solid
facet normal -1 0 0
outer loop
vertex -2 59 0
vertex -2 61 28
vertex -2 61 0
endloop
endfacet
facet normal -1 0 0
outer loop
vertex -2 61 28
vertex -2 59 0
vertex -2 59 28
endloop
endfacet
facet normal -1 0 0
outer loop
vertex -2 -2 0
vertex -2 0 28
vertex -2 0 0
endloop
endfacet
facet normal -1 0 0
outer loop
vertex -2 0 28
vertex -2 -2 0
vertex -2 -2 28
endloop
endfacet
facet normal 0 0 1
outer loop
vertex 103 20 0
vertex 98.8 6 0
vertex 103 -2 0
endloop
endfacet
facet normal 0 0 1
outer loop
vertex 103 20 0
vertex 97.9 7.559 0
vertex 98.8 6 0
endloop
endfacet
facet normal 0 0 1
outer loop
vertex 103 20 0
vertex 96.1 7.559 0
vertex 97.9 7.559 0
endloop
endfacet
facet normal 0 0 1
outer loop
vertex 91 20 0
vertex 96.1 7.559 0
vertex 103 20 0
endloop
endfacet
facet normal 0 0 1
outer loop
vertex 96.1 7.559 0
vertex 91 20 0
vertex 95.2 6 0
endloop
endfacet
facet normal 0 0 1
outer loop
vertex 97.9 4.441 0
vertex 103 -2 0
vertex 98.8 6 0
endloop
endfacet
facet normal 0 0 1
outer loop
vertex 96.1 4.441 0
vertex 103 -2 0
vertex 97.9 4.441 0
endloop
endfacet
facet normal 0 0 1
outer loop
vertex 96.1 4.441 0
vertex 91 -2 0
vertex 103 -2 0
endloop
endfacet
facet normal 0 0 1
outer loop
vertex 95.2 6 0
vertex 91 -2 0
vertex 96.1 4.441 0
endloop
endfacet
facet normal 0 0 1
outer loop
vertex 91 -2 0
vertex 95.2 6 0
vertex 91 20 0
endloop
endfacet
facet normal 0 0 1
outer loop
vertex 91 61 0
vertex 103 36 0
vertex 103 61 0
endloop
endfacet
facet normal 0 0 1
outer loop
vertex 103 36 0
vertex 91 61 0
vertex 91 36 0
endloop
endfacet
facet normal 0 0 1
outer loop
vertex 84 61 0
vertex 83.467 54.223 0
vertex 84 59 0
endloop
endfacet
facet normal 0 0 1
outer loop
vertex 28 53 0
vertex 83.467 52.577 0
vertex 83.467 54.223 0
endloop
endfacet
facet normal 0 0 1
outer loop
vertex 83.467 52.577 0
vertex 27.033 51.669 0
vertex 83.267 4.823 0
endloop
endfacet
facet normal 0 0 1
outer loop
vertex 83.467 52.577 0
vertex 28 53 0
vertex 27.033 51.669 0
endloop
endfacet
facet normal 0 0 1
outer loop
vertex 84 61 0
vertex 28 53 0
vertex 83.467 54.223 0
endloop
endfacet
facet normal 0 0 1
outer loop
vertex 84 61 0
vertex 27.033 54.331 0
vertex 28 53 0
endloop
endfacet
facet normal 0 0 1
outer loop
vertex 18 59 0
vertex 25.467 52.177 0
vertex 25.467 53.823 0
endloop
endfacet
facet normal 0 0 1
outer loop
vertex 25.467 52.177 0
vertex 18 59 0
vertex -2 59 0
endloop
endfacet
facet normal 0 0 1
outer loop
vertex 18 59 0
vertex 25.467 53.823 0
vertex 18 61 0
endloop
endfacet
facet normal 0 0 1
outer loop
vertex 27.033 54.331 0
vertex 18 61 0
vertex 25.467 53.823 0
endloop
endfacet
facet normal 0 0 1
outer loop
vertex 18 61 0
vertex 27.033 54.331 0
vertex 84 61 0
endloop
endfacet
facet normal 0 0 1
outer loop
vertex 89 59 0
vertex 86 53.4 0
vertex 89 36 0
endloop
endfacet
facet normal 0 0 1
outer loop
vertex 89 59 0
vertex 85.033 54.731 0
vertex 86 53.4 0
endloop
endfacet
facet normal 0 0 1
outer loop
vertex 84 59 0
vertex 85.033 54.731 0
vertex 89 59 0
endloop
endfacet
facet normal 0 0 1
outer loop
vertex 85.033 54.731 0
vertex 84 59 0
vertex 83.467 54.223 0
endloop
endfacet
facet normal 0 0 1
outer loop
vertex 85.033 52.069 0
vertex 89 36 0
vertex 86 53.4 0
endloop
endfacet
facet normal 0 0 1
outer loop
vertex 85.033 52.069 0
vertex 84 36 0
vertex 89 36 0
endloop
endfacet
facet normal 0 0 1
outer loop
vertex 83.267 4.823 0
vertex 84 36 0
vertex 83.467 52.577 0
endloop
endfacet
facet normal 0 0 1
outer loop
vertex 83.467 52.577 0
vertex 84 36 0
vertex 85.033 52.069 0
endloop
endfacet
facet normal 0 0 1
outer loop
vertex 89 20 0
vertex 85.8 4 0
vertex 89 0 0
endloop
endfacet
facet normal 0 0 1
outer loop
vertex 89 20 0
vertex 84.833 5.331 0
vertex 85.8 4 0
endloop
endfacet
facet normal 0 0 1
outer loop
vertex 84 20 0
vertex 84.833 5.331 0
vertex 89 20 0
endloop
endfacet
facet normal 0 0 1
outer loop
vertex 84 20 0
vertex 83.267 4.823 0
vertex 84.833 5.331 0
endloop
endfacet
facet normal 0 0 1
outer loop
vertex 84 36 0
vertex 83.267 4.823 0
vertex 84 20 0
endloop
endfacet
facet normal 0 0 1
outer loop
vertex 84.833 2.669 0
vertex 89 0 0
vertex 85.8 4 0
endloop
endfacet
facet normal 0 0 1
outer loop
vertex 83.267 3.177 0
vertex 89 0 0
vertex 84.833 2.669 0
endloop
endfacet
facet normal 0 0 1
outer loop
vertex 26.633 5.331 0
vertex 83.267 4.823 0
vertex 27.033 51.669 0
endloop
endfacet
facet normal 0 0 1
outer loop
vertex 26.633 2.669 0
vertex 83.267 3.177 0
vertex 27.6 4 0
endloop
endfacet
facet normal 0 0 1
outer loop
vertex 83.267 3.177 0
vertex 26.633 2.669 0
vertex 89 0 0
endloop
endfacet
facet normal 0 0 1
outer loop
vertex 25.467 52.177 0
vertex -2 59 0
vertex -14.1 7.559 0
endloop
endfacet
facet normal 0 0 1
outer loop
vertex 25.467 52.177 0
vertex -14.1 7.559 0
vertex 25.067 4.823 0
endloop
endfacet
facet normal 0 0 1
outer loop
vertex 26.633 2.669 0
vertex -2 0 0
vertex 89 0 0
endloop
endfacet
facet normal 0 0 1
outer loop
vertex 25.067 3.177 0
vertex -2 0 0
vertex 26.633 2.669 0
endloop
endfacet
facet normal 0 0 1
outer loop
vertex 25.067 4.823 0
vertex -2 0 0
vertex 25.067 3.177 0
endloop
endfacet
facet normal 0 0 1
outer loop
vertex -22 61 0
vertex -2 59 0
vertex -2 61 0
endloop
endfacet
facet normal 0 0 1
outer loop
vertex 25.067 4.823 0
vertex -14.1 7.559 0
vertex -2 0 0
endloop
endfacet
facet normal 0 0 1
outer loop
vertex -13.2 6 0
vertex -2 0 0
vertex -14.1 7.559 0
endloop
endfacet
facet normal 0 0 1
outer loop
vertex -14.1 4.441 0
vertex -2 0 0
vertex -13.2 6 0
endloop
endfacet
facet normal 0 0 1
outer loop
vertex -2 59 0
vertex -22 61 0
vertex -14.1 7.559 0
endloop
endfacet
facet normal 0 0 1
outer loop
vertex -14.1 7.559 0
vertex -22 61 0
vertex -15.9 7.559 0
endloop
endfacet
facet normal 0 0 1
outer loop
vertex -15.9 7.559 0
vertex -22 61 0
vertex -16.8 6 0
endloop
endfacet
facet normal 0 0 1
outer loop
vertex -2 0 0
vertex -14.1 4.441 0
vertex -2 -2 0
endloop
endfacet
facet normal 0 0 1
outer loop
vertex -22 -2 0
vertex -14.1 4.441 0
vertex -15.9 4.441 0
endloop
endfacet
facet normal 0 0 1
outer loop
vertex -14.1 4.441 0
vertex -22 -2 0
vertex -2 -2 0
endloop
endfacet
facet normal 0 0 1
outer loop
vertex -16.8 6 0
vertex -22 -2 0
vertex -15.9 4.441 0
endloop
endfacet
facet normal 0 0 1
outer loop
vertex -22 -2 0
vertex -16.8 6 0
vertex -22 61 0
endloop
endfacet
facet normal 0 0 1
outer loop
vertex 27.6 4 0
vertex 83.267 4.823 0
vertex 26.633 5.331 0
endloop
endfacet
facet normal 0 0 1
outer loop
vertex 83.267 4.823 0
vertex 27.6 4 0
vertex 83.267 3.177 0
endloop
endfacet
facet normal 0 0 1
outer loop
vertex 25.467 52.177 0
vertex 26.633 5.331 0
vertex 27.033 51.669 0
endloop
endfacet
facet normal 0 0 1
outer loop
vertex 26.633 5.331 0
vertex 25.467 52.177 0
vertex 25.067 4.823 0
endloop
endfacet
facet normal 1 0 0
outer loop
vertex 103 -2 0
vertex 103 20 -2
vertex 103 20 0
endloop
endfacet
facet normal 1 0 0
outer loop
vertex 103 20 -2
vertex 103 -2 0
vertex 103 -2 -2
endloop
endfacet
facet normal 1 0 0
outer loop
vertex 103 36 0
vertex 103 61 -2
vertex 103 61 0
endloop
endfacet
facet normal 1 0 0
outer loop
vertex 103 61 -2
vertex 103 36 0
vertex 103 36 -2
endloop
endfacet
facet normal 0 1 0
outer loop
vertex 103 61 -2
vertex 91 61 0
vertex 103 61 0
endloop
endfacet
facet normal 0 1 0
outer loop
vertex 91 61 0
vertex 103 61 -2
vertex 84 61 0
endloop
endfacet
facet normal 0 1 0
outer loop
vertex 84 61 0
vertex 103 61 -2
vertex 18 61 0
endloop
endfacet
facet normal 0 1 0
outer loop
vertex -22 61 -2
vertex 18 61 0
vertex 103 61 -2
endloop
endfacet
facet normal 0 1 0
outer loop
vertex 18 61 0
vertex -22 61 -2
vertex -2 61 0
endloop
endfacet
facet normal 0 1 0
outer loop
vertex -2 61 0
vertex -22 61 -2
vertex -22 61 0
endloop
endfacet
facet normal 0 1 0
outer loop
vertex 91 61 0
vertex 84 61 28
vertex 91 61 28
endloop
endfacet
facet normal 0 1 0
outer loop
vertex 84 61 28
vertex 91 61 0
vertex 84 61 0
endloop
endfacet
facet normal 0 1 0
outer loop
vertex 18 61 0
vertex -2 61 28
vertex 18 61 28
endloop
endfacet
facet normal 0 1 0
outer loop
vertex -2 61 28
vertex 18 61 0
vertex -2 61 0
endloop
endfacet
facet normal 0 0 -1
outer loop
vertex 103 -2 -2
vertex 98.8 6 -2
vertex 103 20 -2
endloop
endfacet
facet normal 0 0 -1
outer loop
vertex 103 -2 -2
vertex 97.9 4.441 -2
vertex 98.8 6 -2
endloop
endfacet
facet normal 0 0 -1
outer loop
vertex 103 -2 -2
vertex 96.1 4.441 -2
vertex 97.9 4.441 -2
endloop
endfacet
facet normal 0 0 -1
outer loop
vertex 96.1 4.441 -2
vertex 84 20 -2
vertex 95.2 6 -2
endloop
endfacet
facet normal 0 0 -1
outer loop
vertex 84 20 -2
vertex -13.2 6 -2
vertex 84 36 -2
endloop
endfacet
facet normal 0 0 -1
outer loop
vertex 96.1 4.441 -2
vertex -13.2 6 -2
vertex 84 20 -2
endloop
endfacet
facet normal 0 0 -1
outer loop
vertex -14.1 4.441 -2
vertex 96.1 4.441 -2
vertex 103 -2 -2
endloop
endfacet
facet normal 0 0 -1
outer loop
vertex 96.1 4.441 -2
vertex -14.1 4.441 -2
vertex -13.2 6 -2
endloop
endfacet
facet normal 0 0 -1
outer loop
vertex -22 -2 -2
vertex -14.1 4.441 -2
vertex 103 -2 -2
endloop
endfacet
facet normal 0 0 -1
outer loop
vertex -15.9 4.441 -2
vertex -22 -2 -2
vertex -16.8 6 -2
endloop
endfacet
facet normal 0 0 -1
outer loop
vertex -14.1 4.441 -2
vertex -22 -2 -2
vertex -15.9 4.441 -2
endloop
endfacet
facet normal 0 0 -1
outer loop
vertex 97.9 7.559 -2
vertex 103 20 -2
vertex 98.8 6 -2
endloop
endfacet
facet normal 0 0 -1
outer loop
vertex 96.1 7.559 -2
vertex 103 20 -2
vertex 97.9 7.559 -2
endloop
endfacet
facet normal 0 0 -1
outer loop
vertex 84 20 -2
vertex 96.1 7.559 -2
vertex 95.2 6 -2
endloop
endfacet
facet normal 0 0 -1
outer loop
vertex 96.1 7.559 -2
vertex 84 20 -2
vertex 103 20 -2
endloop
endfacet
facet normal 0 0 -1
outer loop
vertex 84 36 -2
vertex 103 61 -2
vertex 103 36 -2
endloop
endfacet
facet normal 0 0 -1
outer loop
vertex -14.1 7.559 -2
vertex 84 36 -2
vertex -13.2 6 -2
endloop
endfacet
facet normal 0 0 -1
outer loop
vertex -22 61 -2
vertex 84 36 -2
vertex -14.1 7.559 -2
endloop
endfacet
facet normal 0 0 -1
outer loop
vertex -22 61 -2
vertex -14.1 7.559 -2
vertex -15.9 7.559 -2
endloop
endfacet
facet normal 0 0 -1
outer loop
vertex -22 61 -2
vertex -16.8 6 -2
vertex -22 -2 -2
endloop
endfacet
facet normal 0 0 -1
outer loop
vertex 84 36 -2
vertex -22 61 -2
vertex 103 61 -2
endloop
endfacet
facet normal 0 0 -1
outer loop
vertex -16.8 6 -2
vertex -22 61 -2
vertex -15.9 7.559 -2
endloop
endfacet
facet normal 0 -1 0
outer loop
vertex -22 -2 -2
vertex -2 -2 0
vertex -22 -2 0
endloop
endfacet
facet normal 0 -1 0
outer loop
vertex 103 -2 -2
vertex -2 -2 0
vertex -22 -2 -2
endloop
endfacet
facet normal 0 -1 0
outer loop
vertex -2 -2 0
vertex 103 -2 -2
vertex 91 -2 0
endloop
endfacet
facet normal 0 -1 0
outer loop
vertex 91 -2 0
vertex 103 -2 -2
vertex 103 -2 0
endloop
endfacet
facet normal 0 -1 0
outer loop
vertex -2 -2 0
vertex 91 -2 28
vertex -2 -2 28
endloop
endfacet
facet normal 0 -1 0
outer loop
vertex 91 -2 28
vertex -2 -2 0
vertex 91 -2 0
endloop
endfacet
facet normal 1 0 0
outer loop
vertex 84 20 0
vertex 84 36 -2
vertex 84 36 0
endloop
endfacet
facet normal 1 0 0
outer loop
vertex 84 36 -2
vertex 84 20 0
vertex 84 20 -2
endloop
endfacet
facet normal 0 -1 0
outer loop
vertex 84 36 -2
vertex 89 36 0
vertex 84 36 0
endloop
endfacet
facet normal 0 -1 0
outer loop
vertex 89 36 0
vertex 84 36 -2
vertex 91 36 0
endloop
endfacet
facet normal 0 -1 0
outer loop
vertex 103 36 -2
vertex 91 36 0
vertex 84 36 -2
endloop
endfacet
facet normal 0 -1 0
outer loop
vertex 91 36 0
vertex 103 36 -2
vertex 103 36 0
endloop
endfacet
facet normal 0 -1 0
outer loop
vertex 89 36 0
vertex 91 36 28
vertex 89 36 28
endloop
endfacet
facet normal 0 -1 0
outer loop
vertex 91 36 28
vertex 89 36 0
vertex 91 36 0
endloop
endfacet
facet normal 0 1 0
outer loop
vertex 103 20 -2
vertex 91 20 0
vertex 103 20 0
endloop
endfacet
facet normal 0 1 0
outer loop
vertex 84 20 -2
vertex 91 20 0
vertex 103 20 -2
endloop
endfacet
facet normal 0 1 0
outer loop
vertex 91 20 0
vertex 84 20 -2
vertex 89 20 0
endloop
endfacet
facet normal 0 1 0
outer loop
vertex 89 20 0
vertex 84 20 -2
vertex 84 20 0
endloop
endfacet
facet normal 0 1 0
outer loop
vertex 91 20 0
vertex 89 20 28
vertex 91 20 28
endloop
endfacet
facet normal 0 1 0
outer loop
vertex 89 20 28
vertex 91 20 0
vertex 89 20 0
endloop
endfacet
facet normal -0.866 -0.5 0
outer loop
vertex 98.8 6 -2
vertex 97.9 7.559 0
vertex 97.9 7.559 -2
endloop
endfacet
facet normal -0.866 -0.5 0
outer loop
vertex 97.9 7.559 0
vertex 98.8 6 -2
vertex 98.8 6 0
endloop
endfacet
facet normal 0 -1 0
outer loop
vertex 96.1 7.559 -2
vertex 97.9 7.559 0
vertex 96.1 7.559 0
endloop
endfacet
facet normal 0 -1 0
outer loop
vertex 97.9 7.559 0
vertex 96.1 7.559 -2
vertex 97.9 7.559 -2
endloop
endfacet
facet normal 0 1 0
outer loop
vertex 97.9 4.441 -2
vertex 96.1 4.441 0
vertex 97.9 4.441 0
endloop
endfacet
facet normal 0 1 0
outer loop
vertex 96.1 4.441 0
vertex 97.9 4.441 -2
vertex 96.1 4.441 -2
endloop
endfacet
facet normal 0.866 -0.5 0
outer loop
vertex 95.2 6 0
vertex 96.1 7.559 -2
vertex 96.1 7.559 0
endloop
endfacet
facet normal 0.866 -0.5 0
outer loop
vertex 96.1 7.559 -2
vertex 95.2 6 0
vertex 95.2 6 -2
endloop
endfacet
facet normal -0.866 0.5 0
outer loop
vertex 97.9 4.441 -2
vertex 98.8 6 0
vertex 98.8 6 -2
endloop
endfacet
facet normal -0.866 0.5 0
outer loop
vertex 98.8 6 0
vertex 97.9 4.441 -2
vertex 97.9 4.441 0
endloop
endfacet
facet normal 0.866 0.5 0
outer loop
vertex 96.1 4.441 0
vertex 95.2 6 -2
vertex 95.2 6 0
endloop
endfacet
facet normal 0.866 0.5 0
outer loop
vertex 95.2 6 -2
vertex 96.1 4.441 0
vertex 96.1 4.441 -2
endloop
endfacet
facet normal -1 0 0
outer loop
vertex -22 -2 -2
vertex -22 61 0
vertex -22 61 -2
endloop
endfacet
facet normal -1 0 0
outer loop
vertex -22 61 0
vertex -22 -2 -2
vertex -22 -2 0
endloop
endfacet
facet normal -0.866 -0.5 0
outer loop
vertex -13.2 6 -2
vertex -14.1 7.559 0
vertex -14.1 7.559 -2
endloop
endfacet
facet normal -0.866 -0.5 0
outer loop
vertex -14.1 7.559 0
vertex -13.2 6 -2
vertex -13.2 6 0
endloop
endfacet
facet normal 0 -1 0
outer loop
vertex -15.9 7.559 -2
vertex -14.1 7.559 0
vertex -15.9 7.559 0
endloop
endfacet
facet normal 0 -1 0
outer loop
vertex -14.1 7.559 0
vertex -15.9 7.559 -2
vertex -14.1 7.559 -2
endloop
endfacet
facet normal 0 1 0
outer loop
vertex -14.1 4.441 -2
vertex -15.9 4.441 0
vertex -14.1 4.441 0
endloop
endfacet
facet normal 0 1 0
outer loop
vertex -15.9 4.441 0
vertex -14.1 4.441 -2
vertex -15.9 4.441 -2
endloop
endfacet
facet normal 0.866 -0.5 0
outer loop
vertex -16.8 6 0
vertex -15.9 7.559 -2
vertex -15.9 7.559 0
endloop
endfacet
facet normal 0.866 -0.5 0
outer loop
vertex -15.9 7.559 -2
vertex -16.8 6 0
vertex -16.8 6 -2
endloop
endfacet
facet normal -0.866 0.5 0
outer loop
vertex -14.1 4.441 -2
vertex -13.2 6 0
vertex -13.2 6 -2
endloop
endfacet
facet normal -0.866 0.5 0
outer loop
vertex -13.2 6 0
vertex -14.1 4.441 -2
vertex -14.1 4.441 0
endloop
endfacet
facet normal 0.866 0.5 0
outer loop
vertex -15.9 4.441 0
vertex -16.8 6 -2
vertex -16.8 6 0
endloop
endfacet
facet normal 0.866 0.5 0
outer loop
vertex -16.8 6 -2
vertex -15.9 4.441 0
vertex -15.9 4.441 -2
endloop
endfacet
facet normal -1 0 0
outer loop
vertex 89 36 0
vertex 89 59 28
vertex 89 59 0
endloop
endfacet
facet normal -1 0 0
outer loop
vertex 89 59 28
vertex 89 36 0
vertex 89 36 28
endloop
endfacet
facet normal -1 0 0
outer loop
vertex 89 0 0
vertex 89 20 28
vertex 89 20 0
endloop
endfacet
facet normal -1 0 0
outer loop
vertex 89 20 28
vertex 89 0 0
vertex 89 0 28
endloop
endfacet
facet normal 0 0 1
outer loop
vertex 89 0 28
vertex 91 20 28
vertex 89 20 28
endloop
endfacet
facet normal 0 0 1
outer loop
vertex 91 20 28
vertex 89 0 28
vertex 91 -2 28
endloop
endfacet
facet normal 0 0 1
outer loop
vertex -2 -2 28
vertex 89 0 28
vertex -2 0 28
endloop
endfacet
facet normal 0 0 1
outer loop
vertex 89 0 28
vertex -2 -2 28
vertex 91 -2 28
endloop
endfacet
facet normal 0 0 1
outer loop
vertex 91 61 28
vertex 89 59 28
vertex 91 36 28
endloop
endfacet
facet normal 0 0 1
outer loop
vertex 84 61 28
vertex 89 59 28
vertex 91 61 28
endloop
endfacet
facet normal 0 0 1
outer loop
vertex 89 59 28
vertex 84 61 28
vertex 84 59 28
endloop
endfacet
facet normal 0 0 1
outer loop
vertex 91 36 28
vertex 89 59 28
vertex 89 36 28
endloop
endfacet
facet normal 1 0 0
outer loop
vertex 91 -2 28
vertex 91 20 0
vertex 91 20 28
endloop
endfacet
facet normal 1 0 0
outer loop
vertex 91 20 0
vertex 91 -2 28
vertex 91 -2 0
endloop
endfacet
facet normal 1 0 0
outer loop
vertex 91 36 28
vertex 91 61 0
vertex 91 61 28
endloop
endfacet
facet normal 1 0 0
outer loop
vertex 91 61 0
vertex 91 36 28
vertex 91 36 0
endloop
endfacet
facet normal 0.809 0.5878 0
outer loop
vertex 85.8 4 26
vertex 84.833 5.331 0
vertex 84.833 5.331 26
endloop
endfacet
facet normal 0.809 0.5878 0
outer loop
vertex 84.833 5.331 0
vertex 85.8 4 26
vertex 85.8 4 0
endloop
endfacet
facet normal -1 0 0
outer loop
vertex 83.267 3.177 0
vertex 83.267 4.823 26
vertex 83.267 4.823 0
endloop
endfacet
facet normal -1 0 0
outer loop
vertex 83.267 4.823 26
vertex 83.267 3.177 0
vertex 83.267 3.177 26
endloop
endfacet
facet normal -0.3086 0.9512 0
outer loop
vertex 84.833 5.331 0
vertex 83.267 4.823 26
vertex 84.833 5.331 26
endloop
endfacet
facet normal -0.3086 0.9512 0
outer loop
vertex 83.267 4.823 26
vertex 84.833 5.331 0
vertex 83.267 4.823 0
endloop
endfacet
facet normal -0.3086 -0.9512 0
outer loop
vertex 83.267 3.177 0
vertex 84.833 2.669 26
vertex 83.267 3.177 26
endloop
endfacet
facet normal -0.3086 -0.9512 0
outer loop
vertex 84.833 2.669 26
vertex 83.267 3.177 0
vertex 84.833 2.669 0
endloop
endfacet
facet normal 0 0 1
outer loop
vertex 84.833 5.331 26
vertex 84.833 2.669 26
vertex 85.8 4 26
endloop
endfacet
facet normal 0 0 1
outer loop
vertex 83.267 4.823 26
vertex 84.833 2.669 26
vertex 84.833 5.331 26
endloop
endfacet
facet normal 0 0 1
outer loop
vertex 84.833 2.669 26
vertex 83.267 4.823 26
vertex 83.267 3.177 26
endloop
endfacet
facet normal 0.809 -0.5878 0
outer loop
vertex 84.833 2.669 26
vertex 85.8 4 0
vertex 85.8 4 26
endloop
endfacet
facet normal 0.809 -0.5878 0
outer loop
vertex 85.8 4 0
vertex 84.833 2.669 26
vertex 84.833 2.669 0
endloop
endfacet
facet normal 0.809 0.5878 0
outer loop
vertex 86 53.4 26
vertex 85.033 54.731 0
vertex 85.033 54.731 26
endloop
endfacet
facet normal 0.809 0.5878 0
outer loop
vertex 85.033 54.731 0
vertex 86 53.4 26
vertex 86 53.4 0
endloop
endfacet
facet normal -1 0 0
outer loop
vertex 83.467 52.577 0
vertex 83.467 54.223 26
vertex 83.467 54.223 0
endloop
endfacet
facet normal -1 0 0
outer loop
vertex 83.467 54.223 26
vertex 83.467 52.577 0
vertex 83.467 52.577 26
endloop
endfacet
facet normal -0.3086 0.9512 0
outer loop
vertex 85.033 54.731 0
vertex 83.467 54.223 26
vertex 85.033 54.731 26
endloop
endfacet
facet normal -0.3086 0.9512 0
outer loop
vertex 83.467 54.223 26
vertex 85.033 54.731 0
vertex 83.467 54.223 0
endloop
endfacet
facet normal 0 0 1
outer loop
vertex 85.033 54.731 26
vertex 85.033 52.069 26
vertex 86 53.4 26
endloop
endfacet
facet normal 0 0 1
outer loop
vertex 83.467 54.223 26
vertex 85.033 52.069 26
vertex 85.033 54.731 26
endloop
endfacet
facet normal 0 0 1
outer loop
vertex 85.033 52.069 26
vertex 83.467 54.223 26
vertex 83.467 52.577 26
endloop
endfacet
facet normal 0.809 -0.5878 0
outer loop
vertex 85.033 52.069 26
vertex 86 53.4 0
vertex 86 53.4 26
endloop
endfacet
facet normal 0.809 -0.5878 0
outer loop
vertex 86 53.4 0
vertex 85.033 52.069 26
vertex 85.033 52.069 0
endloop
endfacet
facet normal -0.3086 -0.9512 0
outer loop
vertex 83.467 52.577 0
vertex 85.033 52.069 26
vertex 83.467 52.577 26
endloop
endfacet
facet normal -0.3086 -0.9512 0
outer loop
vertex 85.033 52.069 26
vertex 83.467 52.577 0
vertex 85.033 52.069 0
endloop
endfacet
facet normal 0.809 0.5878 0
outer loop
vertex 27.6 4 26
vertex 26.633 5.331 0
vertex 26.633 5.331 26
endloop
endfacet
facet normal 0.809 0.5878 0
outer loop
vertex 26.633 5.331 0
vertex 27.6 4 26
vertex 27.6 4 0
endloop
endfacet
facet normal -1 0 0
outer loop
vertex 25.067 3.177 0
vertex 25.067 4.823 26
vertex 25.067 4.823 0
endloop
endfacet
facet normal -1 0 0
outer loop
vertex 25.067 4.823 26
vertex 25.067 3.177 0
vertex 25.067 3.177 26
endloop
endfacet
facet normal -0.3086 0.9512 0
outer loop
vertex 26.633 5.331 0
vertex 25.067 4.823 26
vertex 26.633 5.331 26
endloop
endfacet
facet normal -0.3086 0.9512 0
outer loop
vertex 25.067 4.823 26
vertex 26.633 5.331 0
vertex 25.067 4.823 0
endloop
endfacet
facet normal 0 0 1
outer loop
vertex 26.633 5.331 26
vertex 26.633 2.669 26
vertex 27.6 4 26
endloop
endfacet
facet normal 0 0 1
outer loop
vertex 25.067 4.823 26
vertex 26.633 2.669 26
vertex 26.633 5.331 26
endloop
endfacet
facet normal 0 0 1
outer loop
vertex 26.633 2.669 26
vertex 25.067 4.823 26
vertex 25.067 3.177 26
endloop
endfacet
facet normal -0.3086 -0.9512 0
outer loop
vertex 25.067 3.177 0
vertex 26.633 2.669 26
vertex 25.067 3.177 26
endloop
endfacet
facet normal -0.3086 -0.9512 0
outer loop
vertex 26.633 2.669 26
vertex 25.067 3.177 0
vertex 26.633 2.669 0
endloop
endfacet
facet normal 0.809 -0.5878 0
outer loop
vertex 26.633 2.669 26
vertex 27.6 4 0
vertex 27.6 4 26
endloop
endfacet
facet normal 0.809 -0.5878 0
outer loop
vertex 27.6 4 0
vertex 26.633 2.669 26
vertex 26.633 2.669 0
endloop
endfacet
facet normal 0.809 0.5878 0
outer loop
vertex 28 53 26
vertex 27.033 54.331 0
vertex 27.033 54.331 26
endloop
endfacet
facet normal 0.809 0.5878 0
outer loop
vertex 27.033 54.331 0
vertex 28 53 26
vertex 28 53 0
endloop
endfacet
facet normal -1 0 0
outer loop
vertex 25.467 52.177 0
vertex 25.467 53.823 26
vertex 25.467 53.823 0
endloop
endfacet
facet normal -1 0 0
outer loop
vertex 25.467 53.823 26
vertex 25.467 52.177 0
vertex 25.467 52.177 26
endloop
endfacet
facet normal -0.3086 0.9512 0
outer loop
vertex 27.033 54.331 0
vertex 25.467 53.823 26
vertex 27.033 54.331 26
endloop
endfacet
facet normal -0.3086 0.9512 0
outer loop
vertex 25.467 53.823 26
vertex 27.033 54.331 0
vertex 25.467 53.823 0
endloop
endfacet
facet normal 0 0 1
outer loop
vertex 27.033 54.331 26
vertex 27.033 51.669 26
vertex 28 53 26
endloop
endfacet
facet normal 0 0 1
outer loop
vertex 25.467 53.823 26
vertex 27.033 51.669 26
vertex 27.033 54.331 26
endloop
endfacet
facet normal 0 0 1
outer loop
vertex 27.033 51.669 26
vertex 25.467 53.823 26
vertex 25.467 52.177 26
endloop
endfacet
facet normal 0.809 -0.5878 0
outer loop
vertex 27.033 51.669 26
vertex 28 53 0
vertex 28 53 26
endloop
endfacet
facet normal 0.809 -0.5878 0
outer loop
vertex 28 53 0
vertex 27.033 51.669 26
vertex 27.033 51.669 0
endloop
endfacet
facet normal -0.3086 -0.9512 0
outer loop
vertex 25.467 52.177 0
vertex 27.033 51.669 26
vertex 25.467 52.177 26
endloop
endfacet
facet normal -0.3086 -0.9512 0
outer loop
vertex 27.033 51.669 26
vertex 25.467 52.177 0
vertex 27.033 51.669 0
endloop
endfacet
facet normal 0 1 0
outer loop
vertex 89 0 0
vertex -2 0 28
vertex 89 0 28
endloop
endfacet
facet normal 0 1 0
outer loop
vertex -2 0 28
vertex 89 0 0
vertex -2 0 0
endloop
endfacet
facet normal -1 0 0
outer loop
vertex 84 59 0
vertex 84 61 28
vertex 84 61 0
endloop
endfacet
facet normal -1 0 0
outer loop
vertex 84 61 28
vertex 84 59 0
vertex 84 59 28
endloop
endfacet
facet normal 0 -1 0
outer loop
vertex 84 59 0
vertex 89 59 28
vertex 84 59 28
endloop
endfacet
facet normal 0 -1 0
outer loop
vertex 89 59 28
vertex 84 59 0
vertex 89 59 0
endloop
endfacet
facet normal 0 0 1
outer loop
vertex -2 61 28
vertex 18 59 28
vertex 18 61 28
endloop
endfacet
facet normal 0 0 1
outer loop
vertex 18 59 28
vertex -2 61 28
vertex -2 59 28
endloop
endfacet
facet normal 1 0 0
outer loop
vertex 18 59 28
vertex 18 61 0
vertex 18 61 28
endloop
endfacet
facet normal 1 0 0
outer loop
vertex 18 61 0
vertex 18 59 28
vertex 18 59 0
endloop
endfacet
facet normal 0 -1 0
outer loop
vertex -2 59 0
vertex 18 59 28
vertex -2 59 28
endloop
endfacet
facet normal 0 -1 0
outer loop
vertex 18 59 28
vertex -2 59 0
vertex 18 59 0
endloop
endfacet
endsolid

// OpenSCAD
box_length=90;
box_width=59;
small_distance_between_holes=49;
box_height=30;
SD_side_grabber_length=15;
thickness=2;

// #translate([-2, 0, 27]) cube([1, 59, 1]);

//flat grabber
difference() {
    translate([-thickness, -thickness, -thickness])cube([box_length+SD_side_grabber_length, box_width+(thickness*2), thickness]);
    translate([84, 20, -5])cube([30, 16, 10]);
    translate([97, 6, -5]) cylinder(10, 1.8, 1.8);
}

difference () {
//grabber
    translate([-20-thickness, -thickness, -thickness]) cube([20, box_width+(thickness*2), thickness]);
    
    translate([-15, 6, -5]) cylinder(10, 1.8, 1.8);
}

// distance of 4 from right-most edge
// two sticks, close to closed side
translate([box_length - 5.6, 4, 0]) cylinder(26, 2.8/2, 2.8/2);
translate([box_length - 5.4, 53.4, 0]) cylinder(26, 2.8/2, 2.8/2);

// distance of 62 from right-most-edge
// two sticks, close to open side
translate([box_length - 63.8, 4, 0]) cylinder(26, 2.8/2, 2.8/2);
translate([box_length - 63.4, 53, 0]) cylinder(26, 2.8/2, 2.8/2);

// side support
translate([-thickness, -thickness, -thickness])cube([box_length + thickness, thickness, box_height]);
translate([84, box_width, -thickness])cube([5, thickness, box_height]);
translate([-thickness, box_width, -thickness])cube([20, thickness, box_height]);

difference() {
    translate([89, -thickness, -thickness]) cube([thickness, box_width+(2*thickness), box_height]);
    translate([88, 20, -10]) cube([thickness+2, 16, 50]);
}
